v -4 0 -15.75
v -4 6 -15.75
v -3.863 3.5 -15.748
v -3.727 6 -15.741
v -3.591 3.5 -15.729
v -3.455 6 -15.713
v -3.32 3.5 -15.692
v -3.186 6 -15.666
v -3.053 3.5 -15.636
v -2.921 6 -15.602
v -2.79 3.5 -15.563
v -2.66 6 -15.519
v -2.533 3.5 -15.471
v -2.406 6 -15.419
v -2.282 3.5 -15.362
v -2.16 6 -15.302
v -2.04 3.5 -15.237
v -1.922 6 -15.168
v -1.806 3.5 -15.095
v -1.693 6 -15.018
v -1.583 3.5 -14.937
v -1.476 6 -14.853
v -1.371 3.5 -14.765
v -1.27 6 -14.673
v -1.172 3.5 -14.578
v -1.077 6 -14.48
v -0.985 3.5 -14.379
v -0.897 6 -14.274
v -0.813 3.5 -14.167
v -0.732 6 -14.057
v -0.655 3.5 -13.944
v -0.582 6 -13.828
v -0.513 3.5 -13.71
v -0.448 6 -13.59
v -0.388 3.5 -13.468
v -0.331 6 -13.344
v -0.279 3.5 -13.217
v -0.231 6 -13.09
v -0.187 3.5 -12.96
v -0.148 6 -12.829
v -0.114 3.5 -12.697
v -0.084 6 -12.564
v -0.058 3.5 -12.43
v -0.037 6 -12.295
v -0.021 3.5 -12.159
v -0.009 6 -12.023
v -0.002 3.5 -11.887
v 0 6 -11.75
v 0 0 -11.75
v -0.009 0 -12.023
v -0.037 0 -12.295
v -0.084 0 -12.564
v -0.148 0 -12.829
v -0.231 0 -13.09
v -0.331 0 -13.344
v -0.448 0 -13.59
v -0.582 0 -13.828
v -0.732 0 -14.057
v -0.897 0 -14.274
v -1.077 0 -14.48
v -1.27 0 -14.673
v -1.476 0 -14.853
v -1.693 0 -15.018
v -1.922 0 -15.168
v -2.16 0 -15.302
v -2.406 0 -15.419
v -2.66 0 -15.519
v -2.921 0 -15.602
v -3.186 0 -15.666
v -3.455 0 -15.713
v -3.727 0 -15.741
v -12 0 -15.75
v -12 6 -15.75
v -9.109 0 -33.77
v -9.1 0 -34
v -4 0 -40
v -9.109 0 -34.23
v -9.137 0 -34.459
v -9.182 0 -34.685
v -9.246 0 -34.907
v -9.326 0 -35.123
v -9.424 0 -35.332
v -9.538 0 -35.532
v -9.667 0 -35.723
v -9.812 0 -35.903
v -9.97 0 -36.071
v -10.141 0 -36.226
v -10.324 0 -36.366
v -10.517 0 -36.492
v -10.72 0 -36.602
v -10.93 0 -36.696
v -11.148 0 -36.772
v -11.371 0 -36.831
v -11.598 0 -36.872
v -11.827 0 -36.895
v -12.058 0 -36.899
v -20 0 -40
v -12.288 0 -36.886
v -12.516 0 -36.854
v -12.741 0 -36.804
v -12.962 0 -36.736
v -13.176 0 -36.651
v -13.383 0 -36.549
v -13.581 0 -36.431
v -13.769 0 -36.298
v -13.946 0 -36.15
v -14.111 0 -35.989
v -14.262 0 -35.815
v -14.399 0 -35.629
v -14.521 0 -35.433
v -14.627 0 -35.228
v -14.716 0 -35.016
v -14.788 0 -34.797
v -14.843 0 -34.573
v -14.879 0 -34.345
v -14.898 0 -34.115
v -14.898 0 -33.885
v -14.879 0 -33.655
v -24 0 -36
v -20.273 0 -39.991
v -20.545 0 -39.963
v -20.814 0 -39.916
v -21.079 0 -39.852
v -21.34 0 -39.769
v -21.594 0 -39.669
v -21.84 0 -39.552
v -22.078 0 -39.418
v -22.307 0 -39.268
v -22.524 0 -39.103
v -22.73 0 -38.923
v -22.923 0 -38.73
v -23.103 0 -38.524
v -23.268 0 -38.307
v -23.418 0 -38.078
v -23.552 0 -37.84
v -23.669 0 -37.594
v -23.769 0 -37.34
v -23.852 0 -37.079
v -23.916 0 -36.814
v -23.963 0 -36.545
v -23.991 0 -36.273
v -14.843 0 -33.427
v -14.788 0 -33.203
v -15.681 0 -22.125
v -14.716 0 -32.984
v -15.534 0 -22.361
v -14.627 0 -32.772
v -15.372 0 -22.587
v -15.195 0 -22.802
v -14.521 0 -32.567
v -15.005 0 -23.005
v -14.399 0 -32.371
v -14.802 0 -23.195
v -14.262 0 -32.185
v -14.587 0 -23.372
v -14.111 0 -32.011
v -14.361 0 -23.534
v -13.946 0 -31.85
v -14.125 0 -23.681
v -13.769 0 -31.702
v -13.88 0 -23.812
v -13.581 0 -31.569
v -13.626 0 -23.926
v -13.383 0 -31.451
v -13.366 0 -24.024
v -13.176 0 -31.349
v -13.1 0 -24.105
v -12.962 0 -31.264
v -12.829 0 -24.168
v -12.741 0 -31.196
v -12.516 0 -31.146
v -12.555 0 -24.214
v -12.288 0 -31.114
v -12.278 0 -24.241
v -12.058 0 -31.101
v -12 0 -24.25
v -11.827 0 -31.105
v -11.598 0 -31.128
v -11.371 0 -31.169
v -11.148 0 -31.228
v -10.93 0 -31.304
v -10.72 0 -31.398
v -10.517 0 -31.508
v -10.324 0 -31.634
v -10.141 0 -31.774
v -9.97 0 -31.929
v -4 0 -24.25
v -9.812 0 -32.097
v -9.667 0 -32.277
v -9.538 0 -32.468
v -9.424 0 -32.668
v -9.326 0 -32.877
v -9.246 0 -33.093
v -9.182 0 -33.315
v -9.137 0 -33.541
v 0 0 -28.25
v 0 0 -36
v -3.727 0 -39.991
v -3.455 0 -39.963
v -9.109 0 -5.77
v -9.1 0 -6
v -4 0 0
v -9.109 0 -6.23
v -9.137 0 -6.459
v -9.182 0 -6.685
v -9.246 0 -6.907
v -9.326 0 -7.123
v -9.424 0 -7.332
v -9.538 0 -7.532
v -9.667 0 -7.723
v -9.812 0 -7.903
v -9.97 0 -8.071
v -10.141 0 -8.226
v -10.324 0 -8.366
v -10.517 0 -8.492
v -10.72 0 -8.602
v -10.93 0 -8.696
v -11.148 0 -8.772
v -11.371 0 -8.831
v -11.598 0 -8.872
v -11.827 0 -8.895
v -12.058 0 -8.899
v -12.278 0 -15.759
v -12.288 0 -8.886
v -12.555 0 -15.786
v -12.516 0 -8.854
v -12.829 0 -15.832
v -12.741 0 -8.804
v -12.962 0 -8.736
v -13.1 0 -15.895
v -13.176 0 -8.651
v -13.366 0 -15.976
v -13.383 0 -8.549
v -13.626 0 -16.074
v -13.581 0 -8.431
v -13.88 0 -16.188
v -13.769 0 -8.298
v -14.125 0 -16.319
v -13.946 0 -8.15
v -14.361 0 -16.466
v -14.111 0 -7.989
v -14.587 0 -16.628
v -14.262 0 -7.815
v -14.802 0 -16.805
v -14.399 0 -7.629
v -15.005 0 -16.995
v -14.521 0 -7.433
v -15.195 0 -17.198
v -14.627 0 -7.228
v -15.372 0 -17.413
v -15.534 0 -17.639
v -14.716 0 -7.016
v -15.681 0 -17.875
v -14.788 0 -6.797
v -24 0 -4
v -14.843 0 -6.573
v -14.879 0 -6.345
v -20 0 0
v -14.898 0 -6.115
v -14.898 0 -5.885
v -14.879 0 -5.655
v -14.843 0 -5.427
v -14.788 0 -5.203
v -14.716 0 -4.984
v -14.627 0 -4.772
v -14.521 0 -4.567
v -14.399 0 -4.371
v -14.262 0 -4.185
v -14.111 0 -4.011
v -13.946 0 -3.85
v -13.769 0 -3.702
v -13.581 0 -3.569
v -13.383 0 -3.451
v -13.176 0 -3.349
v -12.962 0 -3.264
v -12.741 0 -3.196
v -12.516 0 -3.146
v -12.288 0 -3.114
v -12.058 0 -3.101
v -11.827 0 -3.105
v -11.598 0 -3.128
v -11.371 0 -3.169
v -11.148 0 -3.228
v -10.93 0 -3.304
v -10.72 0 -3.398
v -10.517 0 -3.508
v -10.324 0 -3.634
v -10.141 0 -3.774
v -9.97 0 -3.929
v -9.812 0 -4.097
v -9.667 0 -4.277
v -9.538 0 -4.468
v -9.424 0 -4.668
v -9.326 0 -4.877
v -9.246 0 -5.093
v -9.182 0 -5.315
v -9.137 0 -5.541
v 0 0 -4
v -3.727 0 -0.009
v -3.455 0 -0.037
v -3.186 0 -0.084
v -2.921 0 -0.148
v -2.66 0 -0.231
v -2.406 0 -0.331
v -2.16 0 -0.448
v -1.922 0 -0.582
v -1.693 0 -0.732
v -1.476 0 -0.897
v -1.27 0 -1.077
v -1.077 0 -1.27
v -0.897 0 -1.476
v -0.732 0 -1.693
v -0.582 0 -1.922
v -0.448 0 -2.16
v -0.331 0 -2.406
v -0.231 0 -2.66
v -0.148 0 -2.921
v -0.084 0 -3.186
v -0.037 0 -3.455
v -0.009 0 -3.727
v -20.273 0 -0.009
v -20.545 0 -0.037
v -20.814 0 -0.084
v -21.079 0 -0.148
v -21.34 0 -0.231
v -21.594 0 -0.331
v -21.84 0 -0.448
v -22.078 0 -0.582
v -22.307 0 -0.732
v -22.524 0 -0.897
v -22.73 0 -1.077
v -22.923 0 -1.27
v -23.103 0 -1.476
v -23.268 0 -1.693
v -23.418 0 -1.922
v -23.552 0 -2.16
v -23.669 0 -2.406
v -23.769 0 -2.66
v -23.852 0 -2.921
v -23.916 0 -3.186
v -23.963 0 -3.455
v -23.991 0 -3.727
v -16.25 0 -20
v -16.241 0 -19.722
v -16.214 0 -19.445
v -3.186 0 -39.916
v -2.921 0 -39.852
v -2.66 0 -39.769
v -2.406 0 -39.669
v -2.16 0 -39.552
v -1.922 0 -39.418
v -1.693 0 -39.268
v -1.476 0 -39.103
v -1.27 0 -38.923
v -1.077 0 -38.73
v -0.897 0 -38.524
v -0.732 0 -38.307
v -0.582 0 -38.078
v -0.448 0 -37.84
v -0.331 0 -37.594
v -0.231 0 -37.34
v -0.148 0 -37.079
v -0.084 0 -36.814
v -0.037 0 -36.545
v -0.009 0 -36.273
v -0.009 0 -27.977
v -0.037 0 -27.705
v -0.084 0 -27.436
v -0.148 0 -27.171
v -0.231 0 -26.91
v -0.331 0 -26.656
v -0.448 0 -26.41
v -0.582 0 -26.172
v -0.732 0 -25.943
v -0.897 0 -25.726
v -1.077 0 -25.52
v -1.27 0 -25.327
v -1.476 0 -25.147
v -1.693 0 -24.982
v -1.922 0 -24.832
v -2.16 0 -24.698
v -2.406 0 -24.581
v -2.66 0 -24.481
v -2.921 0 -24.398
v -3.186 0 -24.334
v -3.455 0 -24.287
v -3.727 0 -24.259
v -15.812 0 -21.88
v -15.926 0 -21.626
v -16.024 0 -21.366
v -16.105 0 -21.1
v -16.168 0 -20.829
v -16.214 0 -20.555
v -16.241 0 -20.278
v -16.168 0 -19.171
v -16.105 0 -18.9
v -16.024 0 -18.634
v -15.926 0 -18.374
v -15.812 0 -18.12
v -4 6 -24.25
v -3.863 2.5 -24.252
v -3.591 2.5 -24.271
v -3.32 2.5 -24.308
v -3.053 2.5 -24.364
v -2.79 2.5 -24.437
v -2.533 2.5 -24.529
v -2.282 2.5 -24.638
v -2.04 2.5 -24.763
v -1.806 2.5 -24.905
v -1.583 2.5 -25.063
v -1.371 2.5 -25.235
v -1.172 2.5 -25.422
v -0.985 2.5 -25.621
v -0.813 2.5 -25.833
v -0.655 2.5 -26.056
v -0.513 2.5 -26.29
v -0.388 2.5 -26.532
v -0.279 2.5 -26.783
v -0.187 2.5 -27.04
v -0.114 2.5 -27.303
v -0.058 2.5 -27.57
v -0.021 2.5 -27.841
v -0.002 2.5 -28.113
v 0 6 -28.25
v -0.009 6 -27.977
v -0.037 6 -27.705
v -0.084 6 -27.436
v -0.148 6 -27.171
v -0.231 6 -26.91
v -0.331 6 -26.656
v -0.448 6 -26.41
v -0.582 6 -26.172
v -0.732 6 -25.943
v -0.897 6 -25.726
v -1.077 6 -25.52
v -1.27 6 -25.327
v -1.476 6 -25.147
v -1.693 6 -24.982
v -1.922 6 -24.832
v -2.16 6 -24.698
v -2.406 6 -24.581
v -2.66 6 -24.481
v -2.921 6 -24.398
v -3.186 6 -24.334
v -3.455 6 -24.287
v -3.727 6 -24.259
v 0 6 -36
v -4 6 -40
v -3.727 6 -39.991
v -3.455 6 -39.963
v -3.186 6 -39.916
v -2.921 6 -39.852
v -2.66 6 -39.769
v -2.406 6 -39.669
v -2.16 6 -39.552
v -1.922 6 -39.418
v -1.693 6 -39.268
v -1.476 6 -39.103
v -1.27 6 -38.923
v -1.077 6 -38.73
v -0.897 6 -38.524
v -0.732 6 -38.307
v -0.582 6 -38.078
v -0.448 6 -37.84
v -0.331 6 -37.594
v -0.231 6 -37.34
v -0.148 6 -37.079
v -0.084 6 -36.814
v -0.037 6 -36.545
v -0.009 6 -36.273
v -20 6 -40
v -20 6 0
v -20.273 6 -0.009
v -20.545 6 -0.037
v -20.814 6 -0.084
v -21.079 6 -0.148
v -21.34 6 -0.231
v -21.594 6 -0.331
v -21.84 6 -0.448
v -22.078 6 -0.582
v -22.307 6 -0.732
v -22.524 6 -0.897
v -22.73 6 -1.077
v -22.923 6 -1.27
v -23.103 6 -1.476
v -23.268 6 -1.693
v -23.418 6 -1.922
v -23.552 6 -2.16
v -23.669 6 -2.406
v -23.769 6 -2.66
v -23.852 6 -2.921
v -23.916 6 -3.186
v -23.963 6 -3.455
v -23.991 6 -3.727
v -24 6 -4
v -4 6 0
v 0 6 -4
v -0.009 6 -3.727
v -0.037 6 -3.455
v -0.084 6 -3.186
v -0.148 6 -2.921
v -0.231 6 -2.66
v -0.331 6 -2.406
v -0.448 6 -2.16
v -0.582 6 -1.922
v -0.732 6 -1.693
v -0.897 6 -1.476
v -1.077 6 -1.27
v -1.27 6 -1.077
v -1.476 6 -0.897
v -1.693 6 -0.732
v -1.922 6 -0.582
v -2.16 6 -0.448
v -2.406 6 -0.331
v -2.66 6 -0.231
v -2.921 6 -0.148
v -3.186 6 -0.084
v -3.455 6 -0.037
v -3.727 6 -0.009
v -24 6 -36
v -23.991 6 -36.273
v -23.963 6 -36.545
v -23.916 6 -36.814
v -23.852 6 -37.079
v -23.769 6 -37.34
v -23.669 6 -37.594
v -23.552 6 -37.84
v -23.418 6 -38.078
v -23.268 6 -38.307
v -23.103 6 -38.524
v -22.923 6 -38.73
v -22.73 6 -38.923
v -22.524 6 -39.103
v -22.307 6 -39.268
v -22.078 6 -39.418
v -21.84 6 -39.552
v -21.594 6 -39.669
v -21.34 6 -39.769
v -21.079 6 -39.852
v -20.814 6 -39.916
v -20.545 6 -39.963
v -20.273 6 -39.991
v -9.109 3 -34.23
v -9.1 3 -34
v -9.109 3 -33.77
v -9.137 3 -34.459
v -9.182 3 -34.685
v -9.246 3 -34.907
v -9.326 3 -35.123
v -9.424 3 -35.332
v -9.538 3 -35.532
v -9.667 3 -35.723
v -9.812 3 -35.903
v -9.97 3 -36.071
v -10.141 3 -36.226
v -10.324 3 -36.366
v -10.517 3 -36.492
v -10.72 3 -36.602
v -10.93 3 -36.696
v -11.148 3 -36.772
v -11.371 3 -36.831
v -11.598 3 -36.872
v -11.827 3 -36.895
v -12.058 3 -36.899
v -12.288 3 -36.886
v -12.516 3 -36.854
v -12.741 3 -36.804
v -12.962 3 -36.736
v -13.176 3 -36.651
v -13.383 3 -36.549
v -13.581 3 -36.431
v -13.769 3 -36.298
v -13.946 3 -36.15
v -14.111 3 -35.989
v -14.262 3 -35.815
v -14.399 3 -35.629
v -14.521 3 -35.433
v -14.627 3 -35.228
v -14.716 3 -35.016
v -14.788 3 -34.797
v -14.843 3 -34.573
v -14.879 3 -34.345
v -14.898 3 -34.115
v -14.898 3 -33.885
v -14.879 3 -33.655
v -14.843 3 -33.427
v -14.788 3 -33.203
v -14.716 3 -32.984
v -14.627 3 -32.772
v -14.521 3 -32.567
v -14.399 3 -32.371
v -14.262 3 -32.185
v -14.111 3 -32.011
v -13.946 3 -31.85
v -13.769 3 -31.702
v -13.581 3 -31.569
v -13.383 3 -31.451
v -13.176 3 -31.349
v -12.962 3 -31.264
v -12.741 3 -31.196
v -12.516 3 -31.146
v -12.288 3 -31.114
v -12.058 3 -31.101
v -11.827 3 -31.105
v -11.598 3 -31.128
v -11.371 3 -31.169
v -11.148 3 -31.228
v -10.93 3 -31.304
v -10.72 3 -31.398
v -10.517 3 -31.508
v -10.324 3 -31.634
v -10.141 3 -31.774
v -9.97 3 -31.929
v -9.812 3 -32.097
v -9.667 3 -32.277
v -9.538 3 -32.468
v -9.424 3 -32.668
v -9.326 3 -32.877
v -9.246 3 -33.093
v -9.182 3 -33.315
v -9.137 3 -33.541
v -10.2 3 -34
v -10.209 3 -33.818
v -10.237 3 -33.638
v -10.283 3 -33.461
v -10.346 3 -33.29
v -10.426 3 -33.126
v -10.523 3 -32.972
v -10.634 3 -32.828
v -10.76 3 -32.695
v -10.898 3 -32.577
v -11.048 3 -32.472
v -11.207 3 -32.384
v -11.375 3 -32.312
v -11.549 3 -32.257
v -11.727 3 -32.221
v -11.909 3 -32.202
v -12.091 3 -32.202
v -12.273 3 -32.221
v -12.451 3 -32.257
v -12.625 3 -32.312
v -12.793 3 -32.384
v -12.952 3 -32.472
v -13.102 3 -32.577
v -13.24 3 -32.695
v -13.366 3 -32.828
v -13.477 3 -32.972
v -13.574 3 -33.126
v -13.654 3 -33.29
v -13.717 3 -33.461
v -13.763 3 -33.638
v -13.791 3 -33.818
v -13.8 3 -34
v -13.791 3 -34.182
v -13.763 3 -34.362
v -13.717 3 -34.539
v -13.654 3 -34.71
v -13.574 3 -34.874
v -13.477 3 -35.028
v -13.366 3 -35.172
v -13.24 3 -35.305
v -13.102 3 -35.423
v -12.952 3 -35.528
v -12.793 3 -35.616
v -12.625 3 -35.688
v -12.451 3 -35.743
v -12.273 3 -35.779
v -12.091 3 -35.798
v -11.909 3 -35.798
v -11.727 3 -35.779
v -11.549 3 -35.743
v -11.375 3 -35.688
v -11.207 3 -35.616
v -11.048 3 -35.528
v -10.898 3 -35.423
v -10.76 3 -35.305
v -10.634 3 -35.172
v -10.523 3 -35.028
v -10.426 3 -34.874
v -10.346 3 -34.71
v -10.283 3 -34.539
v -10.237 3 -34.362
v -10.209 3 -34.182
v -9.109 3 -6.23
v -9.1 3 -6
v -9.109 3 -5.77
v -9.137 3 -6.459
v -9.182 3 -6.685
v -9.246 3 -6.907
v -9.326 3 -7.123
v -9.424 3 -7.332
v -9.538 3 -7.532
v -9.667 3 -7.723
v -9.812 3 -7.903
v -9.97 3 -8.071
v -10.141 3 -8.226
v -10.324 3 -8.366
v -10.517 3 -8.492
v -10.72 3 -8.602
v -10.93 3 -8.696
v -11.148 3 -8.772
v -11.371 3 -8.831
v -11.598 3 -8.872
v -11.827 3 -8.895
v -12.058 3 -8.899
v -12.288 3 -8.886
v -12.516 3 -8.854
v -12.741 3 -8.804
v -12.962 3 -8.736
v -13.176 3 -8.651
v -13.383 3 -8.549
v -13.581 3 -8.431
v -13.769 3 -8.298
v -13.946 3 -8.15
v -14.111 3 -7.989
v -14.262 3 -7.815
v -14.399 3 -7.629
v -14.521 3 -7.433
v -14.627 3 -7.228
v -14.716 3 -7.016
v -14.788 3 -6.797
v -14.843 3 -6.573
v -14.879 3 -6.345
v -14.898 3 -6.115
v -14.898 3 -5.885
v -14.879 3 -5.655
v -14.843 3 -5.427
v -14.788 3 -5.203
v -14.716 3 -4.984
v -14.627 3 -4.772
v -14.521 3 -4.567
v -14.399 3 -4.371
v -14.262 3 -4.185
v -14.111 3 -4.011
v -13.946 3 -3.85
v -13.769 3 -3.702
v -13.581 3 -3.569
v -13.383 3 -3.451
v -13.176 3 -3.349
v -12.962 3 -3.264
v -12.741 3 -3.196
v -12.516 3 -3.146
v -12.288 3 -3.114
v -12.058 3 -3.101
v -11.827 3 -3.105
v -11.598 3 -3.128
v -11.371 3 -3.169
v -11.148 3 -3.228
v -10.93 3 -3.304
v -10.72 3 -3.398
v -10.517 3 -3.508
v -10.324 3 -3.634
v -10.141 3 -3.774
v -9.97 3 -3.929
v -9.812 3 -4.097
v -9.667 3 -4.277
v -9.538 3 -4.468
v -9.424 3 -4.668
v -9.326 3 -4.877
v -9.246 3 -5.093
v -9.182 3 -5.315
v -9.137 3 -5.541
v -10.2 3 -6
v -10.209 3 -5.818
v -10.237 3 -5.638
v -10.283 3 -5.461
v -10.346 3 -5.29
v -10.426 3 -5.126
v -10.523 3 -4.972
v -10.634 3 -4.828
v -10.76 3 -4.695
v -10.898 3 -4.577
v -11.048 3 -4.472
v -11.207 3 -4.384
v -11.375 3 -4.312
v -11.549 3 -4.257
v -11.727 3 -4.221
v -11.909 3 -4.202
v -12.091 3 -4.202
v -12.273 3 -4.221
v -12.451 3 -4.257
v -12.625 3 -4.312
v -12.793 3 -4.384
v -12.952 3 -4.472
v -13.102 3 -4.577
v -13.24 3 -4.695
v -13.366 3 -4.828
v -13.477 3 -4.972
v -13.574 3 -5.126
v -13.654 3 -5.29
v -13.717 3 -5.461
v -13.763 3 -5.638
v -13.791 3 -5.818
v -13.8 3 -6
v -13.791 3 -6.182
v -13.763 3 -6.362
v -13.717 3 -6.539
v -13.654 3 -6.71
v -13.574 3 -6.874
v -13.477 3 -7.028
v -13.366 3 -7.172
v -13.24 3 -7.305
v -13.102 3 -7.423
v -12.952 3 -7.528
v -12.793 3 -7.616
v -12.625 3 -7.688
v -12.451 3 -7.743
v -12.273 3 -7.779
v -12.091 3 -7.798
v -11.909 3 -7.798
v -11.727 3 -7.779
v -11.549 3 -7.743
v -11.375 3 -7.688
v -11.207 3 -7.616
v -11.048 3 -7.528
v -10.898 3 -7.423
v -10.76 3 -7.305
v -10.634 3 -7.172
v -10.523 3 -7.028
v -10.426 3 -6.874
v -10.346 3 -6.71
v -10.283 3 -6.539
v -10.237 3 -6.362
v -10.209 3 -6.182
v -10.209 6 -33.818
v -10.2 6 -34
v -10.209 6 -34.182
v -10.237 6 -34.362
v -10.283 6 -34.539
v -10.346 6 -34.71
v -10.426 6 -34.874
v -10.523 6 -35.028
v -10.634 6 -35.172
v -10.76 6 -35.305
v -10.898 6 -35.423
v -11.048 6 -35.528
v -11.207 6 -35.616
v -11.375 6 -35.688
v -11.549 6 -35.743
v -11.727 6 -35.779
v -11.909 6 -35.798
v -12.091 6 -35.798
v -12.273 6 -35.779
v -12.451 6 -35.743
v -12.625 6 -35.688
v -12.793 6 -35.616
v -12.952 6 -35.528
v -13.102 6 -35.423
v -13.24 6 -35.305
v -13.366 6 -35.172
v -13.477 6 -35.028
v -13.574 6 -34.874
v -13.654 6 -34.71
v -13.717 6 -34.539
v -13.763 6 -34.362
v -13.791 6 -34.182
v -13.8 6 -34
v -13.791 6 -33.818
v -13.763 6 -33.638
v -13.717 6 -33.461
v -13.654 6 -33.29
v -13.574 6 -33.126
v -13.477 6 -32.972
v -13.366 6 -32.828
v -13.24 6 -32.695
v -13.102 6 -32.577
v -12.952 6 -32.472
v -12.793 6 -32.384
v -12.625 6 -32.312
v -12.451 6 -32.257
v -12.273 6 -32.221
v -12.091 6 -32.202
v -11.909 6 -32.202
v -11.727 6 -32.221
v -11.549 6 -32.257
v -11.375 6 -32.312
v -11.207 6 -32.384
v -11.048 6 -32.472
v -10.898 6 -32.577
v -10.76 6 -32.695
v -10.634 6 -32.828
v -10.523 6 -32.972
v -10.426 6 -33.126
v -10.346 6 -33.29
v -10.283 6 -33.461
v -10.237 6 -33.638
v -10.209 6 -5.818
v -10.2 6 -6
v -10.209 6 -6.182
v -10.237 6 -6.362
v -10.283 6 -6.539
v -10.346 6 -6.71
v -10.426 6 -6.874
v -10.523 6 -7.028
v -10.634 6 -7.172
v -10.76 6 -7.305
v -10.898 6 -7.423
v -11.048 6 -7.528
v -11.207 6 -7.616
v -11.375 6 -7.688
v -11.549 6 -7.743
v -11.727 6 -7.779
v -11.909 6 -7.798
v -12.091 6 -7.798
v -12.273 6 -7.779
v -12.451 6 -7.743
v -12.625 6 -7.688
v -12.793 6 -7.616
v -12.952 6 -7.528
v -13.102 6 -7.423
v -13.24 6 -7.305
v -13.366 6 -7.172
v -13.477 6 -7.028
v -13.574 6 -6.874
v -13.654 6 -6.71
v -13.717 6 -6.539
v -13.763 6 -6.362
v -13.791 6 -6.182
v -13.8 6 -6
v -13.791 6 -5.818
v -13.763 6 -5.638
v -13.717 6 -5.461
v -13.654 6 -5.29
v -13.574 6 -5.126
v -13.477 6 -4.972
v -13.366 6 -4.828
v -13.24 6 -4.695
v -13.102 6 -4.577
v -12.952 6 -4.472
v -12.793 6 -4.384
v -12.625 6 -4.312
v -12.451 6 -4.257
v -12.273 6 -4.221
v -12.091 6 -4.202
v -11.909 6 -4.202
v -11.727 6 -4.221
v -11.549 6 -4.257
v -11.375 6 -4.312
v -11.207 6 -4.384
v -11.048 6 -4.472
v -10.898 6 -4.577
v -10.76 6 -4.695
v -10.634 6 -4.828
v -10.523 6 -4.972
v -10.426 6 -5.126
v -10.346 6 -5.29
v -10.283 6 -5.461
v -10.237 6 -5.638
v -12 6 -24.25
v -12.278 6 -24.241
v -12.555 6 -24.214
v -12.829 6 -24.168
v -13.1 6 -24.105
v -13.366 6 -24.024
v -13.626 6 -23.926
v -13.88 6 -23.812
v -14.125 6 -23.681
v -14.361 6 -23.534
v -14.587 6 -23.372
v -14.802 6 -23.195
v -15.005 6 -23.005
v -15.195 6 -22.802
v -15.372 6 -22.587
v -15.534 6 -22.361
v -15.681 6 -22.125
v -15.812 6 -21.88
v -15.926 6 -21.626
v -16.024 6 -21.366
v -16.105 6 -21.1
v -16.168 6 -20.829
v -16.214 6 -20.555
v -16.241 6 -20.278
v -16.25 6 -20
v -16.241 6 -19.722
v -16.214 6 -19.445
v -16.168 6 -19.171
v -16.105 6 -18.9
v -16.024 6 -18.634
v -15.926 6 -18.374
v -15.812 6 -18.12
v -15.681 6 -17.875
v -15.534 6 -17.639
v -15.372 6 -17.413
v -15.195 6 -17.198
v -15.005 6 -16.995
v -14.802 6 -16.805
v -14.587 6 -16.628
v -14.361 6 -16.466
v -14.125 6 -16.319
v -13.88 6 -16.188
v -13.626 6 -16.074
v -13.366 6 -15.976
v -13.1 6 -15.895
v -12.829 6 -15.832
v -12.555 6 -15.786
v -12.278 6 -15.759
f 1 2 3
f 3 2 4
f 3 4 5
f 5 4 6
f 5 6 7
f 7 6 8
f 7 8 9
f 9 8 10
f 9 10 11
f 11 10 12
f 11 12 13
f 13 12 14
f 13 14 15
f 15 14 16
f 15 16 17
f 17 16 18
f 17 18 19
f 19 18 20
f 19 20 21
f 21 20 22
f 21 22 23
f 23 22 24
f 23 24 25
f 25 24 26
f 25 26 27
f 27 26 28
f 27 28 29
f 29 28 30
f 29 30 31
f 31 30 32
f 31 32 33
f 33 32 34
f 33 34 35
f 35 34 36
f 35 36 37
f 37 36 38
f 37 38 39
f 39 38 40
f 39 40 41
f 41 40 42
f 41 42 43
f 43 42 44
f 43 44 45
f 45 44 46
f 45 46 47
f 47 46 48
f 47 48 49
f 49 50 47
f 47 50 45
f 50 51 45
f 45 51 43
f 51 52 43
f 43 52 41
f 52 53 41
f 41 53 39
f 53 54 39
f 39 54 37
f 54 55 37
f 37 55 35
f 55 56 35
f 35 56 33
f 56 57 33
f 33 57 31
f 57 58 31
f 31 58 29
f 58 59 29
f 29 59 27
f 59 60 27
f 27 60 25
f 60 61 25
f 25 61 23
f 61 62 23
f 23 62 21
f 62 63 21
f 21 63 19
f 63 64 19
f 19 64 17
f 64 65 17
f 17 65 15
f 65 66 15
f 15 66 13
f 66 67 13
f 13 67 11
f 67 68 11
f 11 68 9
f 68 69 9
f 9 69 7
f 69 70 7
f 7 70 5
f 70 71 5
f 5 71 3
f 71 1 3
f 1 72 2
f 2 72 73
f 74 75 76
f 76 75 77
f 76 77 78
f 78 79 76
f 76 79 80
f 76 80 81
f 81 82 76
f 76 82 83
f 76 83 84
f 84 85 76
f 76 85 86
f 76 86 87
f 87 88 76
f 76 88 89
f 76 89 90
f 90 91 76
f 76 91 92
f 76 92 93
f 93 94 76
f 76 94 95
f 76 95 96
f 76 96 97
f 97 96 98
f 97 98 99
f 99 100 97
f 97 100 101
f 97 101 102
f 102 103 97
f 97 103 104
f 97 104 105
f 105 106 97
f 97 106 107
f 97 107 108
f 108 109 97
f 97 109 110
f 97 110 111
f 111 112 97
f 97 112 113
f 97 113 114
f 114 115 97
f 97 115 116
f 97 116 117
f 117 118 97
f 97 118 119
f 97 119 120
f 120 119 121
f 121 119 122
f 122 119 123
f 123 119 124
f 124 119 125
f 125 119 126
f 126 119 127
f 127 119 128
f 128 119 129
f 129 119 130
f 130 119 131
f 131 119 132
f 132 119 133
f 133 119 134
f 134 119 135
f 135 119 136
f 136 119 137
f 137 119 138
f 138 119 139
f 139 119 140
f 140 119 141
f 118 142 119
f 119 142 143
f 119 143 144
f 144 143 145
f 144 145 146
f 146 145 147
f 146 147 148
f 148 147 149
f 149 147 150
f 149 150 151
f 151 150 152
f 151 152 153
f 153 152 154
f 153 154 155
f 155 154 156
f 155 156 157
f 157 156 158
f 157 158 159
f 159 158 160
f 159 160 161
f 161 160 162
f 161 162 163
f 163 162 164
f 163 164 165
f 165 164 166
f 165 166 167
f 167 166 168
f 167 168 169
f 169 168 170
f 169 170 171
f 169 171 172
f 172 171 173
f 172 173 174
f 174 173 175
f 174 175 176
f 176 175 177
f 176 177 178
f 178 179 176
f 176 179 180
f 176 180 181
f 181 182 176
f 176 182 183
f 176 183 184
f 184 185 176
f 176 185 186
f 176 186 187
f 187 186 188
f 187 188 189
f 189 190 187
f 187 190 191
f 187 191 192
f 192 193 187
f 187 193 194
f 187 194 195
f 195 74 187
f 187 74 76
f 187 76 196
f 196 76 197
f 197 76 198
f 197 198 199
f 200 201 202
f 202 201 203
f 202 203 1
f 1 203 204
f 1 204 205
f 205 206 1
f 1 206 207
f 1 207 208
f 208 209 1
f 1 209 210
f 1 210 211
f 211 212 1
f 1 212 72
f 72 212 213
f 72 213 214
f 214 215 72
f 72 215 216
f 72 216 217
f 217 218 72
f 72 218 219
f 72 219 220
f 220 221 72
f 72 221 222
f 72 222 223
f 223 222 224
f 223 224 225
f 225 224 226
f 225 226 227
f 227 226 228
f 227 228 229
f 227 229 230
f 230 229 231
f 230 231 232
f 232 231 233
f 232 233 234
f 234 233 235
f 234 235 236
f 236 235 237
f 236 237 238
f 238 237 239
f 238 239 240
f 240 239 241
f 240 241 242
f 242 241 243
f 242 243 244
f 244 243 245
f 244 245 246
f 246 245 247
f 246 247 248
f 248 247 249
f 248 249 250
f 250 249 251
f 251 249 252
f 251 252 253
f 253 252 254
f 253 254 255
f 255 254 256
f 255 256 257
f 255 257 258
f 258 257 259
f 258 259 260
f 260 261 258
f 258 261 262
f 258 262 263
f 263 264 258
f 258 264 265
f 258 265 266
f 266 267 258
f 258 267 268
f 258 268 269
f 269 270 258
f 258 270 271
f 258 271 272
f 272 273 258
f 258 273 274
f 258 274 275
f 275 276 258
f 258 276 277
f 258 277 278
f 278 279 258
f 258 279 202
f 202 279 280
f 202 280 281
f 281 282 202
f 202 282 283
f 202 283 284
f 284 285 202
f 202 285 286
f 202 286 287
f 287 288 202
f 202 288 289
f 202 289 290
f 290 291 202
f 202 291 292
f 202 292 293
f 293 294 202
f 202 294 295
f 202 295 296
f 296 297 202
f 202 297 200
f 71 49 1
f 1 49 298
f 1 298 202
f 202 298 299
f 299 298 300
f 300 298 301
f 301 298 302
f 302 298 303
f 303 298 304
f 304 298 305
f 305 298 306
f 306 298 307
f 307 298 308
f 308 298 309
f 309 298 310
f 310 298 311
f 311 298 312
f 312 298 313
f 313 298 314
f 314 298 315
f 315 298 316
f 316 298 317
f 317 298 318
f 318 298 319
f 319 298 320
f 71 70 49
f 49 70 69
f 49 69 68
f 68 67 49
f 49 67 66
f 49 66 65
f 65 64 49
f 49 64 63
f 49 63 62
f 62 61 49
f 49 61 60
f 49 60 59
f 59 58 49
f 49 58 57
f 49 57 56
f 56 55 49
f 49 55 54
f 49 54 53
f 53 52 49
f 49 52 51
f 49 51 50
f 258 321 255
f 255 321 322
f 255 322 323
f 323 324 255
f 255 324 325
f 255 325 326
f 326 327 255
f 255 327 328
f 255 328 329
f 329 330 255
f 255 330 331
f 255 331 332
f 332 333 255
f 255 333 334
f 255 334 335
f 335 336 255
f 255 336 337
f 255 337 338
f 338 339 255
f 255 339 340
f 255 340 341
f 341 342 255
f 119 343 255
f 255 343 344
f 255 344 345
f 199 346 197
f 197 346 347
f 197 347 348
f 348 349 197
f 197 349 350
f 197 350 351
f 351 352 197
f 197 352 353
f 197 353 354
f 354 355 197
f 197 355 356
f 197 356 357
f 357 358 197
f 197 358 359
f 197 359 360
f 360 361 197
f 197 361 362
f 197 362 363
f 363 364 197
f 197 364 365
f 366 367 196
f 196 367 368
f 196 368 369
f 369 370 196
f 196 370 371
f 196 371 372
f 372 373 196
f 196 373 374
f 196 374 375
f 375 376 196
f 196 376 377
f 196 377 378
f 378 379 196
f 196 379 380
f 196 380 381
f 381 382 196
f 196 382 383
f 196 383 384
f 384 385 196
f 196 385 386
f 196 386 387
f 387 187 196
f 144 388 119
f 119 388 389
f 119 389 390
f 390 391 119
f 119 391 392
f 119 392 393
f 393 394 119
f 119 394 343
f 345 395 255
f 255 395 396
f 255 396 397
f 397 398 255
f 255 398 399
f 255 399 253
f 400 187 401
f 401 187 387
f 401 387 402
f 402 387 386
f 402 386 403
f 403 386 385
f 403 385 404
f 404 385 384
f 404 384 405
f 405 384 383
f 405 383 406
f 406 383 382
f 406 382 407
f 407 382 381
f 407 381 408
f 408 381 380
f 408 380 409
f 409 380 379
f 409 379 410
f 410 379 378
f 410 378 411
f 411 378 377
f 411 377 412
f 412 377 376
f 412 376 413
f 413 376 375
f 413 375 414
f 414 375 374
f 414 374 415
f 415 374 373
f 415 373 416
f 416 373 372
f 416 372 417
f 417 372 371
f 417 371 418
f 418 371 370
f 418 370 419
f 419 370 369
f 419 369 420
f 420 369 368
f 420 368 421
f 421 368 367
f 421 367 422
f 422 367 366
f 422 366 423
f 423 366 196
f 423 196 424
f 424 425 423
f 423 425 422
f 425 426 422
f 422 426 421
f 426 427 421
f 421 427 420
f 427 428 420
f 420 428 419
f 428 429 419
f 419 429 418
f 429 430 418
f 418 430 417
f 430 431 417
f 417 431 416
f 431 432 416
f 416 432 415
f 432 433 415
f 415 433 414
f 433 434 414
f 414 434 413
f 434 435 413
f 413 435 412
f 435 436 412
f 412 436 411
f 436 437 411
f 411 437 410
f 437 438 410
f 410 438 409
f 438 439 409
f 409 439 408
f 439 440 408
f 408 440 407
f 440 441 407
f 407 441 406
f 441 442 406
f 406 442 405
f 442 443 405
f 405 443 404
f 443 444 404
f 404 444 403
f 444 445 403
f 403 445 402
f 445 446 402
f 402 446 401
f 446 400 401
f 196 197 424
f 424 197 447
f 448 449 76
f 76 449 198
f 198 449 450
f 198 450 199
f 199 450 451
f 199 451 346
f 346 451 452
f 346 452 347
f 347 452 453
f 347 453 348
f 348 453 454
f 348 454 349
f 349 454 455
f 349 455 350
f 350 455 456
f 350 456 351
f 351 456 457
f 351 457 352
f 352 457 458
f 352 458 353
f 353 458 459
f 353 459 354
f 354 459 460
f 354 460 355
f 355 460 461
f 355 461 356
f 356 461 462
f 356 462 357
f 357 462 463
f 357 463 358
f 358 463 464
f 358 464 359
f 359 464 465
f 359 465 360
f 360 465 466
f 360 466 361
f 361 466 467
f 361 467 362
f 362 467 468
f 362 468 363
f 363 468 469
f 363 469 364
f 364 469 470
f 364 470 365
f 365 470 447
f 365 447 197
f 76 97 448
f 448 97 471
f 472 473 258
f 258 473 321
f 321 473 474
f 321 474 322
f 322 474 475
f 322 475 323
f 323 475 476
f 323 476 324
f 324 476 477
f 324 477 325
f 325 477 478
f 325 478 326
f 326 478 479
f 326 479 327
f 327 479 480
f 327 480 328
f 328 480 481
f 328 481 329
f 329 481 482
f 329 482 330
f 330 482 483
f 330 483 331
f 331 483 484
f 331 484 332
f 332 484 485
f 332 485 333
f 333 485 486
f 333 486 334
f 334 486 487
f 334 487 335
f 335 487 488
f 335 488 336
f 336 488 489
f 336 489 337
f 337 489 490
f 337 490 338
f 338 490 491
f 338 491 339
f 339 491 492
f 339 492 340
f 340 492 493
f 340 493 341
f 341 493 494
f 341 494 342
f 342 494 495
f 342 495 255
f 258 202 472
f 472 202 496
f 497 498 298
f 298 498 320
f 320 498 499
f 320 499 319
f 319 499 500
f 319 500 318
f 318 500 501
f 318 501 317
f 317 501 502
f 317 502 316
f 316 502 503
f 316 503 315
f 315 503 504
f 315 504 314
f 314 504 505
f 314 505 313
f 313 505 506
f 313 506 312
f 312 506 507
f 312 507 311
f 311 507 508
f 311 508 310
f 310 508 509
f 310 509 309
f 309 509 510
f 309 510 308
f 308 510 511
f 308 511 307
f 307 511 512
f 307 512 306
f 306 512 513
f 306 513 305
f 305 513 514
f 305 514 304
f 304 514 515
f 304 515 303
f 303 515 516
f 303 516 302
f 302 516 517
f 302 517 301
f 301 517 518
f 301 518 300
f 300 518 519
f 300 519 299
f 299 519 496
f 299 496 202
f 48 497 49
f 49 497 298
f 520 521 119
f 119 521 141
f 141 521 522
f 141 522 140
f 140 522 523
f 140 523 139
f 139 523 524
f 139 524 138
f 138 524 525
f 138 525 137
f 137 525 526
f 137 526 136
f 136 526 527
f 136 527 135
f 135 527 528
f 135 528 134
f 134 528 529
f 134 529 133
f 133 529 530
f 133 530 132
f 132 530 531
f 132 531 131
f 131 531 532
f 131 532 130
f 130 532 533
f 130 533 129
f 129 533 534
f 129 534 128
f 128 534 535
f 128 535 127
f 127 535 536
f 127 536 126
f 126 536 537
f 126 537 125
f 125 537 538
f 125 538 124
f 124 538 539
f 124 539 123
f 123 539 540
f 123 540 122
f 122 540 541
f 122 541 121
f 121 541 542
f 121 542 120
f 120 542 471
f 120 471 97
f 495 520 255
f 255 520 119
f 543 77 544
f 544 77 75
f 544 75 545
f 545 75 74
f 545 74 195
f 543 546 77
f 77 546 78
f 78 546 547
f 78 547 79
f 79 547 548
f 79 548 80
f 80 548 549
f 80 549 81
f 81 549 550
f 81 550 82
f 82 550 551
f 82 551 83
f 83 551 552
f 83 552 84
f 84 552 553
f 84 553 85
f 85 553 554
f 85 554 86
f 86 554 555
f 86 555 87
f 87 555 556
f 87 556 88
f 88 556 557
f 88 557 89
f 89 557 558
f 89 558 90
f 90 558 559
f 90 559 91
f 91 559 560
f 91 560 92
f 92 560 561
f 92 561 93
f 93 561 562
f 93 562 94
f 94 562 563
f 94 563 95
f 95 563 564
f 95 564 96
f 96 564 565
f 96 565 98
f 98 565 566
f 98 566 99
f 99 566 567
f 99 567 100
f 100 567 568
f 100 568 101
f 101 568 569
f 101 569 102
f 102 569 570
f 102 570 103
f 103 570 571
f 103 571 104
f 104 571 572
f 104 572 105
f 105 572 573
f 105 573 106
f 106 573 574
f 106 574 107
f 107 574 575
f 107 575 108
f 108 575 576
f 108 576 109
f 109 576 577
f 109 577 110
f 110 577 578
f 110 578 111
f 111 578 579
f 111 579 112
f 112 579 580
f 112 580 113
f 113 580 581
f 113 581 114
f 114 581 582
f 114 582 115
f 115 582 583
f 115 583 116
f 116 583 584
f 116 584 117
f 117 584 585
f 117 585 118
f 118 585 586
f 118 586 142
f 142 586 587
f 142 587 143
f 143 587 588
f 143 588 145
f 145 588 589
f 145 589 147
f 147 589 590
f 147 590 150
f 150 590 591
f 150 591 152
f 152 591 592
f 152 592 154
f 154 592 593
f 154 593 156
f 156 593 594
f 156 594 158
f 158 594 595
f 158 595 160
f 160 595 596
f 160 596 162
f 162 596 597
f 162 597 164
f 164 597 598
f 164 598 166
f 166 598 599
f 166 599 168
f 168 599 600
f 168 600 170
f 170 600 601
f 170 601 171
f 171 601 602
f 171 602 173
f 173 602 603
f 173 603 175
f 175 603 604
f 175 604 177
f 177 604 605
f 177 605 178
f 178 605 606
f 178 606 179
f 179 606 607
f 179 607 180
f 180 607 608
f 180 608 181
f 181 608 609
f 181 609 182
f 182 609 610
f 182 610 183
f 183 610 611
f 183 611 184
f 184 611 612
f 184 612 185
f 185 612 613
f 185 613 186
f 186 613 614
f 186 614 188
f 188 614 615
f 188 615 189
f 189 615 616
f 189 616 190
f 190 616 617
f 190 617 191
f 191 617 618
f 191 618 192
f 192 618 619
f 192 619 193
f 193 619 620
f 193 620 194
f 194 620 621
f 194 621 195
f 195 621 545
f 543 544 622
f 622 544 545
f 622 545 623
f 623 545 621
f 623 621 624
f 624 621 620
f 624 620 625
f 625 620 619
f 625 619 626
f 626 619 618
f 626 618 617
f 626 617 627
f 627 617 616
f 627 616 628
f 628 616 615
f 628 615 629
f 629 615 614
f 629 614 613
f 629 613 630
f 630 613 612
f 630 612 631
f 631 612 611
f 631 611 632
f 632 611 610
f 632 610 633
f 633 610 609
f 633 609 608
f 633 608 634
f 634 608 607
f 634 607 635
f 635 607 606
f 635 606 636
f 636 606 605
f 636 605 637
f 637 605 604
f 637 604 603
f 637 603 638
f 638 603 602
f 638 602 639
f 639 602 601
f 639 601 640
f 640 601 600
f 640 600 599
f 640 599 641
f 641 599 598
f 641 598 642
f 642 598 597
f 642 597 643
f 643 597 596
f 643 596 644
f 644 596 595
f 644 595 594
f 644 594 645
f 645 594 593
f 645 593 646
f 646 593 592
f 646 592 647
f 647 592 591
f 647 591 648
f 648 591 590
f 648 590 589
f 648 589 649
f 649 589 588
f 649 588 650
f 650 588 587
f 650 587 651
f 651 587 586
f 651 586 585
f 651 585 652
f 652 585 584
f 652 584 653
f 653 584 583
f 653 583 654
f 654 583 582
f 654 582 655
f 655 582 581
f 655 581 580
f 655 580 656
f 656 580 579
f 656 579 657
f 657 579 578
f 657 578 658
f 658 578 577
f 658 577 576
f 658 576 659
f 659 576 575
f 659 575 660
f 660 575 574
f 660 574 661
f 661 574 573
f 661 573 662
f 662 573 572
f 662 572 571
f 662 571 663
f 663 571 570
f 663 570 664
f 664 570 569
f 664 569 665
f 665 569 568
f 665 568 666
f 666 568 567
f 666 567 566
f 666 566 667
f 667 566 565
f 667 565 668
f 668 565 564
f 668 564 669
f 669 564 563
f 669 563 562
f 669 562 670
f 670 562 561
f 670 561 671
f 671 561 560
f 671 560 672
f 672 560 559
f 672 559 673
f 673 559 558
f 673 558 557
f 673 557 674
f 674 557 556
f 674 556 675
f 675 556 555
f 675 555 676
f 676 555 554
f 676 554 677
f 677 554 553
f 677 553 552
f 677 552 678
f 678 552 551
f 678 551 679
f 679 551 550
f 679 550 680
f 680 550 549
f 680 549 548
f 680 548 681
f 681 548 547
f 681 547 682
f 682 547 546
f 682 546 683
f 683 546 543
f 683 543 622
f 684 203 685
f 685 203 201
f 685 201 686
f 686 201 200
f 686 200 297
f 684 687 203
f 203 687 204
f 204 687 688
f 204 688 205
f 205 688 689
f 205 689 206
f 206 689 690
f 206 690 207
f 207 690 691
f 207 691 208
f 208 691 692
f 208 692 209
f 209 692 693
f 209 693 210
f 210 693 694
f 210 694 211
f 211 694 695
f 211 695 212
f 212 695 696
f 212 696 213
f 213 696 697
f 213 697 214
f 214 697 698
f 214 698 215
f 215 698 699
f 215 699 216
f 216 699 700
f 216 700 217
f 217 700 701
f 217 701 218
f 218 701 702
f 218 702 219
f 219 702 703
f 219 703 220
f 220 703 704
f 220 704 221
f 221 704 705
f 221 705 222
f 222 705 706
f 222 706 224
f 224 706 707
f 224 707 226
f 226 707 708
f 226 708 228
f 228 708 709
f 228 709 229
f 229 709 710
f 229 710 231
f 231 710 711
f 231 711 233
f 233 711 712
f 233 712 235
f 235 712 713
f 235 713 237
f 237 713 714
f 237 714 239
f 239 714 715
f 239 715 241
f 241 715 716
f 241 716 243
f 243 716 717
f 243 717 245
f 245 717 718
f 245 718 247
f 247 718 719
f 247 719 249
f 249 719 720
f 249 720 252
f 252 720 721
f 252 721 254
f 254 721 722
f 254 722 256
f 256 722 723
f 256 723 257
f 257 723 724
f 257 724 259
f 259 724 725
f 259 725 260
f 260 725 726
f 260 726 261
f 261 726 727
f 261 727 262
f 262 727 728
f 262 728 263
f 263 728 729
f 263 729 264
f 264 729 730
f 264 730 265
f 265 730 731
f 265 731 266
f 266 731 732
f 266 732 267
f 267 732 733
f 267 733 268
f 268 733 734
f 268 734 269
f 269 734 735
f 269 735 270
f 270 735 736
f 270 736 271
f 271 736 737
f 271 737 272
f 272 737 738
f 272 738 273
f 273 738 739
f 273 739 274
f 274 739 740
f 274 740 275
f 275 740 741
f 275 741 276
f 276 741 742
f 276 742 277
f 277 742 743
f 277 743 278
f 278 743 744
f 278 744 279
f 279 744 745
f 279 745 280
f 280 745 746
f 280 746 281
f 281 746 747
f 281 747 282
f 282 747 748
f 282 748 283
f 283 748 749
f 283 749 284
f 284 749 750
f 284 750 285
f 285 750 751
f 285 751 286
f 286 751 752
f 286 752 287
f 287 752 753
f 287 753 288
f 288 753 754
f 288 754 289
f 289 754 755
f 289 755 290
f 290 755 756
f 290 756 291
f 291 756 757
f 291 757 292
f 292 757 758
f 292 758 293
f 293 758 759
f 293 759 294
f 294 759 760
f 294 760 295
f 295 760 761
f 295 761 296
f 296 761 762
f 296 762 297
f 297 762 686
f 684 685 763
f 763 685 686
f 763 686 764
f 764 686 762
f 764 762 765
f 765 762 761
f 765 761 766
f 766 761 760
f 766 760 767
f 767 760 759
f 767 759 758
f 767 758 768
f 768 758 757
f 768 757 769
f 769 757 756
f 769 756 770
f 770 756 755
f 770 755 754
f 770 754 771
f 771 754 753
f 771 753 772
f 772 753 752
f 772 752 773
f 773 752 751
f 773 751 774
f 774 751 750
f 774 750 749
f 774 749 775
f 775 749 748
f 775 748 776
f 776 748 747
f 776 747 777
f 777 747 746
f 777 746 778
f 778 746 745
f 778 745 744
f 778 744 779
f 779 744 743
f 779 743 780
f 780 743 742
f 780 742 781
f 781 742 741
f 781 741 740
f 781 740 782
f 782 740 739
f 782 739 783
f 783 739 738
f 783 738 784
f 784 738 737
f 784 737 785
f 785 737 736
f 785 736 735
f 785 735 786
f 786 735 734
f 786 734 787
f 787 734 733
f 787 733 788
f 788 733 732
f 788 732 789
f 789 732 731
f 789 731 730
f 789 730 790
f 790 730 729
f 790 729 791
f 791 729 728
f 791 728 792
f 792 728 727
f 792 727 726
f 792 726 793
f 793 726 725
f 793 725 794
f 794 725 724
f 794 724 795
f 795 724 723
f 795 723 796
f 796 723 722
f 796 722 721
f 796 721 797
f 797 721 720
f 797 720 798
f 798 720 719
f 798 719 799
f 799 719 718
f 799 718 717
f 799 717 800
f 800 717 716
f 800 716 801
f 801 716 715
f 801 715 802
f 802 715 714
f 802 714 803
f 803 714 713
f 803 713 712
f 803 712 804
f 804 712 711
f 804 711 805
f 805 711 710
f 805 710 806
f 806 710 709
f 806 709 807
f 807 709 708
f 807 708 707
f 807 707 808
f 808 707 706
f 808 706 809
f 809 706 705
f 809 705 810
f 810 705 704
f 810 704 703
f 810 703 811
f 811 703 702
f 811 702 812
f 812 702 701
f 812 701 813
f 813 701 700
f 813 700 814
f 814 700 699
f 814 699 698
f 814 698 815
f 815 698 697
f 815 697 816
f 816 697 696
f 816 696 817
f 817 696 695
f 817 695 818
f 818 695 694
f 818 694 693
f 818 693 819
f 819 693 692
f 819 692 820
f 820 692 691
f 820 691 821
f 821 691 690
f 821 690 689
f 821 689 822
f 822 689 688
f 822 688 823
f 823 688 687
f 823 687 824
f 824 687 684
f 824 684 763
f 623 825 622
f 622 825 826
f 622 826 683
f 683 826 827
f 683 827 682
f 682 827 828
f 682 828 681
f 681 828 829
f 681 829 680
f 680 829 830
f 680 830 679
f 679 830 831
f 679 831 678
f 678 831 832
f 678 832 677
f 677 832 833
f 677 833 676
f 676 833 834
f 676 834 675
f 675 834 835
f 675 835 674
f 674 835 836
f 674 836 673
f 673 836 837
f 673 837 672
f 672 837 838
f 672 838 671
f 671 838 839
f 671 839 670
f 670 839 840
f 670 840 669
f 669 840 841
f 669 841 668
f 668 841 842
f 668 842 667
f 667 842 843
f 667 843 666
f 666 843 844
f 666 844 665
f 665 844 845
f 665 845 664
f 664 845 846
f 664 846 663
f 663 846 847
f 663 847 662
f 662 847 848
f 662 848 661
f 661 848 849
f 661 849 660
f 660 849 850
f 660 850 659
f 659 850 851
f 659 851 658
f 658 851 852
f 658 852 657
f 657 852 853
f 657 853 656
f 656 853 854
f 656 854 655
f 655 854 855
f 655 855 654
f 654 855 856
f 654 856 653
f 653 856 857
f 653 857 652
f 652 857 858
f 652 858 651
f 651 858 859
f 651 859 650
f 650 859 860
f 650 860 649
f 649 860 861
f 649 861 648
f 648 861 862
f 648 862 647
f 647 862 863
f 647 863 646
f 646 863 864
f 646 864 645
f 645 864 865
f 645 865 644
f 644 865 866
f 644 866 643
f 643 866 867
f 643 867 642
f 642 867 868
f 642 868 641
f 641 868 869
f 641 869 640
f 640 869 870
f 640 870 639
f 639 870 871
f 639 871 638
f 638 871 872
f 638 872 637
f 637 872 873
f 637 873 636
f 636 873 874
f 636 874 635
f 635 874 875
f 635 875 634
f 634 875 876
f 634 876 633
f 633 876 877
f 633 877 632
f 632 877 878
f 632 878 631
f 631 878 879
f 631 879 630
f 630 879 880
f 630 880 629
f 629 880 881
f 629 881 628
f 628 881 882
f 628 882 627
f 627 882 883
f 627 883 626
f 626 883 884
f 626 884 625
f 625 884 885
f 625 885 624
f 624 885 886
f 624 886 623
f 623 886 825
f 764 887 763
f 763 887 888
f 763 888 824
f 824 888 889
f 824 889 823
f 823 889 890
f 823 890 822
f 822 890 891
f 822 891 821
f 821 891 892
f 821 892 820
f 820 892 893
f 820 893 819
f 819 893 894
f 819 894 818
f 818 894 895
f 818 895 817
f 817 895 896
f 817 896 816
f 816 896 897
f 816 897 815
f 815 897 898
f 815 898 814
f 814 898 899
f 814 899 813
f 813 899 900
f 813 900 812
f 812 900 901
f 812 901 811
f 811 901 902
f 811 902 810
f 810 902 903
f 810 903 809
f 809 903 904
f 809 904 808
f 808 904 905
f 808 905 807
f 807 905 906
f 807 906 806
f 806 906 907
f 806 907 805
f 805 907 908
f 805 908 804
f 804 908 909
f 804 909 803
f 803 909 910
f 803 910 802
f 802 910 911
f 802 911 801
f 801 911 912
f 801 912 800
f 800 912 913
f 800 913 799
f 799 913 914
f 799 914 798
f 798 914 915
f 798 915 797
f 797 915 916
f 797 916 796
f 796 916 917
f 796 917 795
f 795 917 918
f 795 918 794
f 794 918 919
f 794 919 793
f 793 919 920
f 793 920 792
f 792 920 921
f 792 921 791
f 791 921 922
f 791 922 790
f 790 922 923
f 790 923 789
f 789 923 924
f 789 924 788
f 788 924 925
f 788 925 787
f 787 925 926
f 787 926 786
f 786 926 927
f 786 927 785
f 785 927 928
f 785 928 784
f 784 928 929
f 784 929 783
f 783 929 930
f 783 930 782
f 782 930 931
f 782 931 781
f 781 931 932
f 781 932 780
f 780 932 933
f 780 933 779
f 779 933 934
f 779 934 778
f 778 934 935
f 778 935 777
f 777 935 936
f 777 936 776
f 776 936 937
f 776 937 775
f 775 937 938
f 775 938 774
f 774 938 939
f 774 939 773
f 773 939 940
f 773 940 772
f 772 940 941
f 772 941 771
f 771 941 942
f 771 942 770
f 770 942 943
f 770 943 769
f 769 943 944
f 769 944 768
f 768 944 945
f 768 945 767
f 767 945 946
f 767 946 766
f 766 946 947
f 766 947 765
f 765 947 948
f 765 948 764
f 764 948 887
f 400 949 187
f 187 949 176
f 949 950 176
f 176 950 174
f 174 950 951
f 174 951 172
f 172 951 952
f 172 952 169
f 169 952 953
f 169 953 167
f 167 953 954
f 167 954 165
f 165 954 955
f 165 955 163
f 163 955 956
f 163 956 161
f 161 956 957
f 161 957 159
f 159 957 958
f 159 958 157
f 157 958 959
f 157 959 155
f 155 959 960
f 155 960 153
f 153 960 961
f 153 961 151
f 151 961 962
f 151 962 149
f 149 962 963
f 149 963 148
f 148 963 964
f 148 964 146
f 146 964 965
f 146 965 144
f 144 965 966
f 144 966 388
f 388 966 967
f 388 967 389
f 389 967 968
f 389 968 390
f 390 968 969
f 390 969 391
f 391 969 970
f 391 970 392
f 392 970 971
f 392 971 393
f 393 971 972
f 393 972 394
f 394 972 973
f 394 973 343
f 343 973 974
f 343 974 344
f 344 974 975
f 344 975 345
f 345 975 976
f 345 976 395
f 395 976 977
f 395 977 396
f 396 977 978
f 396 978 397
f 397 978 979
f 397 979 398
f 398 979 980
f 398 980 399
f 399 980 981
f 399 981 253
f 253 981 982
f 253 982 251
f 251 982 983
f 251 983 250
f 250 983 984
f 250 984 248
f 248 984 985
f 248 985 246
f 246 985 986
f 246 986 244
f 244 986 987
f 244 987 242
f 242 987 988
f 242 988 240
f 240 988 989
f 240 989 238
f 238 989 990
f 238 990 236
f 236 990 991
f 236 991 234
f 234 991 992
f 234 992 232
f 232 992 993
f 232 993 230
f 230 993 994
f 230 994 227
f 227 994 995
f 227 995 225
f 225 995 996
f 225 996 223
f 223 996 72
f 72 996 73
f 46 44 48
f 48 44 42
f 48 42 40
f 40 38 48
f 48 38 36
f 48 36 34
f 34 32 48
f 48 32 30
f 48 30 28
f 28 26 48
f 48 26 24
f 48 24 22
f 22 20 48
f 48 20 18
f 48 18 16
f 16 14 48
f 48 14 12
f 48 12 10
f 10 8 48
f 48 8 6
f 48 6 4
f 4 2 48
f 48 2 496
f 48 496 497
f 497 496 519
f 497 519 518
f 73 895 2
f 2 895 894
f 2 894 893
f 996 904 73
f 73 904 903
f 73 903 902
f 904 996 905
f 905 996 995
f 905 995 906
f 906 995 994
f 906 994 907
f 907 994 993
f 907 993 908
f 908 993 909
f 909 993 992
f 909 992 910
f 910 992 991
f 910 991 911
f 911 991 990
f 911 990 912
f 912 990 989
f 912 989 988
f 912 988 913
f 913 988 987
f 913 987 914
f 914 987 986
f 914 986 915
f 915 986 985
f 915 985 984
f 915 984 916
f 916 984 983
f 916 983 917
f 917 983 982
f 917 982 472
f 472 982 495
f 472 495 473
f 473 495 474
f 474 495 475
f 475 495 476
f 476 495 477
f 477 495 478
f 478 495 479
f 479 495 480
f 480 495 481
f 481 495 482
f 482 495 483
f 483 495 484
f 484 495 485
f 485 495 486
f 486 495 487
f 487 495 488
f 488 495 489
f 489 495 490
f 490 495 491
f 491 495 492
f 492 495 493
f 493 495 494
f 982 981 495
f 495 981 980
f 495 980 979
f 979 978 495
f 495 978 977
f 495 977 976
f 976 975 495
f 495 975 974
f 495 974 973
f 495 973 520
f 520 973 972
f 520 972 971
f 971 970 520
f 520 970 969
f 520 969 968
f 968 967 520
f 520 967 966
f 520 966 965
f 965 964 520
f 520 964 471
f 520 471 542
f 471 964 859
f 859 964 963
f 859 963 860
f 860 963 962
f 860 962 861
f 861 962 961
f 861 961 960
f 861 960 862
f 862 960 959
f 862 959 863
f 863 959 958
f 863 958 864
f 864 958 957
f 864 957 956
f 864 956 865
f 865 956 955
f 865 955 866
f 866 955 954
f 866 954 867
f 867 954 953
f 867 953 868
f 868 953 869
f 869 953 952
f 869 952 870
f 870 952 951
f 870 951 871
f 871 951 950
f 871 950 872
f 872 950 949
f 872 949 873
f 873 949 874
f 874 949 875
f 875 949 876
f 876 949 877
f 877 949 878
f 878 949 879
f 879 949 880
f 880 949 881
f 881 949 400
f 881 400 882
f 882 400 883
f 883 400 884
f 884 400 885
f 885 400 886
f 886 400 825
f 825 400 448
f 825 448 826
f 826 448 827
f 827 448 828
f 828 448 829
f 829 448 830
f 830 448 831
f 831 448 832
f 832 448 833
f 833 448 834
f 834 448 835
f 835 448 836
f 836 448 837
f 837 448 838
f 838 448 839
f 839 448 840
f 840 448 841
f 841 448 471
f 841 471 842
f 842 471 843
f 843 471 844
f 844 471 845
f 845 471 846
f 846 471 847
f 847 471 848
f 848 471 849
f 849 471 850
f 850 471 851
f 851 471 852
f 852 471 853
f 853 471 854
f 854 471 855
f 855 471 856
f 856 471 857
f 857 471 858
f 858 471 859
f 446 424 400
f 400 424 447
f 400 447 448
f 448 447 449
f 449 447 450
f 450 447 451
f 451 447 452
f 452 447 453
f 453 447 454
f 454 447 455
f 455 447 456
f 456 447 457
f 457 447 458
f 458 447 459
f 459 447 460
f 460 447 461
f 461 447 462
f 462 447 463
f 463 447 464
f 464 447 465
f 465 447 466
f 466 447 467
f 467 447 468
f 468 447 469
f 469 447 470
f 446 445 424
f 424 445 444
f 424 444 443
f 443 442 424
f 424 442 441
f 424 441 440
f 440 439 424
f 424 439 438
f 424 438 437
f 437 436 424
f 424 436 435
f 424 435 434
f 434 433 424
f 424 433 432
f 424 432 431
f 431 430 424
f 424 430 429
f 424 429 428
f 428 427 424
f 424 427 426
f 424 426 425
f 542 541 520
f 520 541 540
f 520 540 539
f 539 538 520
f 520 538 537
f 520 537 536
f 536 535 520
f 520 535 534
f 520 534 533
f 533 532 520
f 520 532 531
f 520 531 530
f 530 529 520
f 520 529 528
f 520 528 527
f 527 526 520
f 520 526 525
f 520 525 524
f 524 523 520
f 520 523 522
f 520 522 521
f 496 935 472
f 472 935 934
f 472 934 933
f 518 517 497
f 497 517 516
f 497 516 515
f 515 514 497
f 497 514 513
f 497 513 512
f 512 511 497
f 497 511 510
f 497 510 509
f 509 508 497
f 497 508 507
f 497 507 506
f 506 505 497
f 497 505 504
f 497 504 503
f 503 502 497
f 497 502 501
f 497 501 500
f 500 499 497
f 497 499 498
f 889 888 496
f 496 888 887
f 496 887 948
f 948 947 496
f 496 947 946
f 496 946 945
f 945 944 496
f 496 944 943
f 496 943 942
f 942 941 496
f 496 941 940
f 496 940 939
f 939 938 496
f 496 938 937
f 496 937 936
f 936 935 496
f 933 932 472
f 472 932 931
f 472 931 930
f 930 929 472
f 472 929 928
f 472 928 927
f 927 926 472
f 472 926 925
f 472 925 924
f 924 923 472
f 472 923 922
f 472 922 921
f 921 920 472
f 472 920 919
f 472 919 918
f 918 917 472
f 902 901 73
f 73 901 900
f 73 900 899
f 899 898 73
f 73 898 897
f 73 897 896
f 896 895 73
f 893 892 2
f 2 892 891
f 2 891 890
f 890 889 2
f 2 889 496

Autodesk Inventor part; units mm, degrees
ref_plane "YZ Plane" through (0, 0, 0) normal (1, 0, 0) x (0, 1, 0)
ref_plane "XZ Plane" through (0, 0, 0) normal (0, 1, 0) x (-1, 0, 0)
ref_plane "XY Plane" through (0, 0, 0) normal (0, 0, 1) x (1, 0, 0)
sketch "Sketch1" plane through (0, 0, 0) normal (0, 1, 0) x (-1, 0, 0)
  line L0 (0, 0) -> (24, 0)
  line L1 (24, 0) -> (24, -40)
  line L2 (24, -40) -> (0, -40)
  line L3 (0, -40) -> (0, 0)
  dimension "d0" = 24
  dimension "d1" = 40
extrude "Extrusion1" add sketch "Sketch1" along normal blind 6
sketch "Sketch2" plane through (0, 6, 0) normal (0, 1, 0) x (1, 0, 0)
  arc A0 (-12, 24.25) -> (-12, 15.75) centre (-12, 20) ccw
  line L0 (-12, 15.75) -> (0, 15.75)
  line L1 (-12, 24.25) -> (0, 24.25)
  line L2 (0, 24.25) -> (0, 15.75)
  line L3 (0, 0) -> (0, 40) projected
  dimension "d4" = 8.5
extrude "Extrusion2" cut sketch "Sketch2" against normal blind 6
sketch "Sketch3" plane through (0, 6, 0) normal (0, 1, 0) x (1, 0, 0)
  circle A0 centre (-12, 6) radius 1.8
  point P0 (0, 0)
  dimension "d7" = 3.6
extrude "Extrusion3" cut sketch "Sketch3" against normal blind 6
ref_plane "Work Plane1" through (-24, 0, -20) normal (0, 0, 1) x (1, 0, 0)
mirror "Mirror1" about plane through (-24, 0, -20) normal (0, 0, 1) of "Extrusion3"
sketch "Sketch4" plane through (0, 0, 0) normal (0, -1, 0) x (1, 0, 0)
  circle A0 centre (-12, -6) radius 1.8 projected
  circle A1 centre (-12, -6) radius 2.9
  point P0 (0, 0)
  dimension "d11" = 5.8
extrude "Extrusion4" cut sketch "Sketch4" against normal blind 3
mirror "Mirror2" about plane through (-24, 0, -20) normal (0, 0, 1) of "Extrusion4"
fillet "Fillet1" radius 4 6 edges at (-24, 3, -40) (0, 3, 0) (-24, 3, 0) (0, 3, -40) (0, 3, -24.25) (0, 3, -15.75)
properties part number "shaft pusher bottom"
